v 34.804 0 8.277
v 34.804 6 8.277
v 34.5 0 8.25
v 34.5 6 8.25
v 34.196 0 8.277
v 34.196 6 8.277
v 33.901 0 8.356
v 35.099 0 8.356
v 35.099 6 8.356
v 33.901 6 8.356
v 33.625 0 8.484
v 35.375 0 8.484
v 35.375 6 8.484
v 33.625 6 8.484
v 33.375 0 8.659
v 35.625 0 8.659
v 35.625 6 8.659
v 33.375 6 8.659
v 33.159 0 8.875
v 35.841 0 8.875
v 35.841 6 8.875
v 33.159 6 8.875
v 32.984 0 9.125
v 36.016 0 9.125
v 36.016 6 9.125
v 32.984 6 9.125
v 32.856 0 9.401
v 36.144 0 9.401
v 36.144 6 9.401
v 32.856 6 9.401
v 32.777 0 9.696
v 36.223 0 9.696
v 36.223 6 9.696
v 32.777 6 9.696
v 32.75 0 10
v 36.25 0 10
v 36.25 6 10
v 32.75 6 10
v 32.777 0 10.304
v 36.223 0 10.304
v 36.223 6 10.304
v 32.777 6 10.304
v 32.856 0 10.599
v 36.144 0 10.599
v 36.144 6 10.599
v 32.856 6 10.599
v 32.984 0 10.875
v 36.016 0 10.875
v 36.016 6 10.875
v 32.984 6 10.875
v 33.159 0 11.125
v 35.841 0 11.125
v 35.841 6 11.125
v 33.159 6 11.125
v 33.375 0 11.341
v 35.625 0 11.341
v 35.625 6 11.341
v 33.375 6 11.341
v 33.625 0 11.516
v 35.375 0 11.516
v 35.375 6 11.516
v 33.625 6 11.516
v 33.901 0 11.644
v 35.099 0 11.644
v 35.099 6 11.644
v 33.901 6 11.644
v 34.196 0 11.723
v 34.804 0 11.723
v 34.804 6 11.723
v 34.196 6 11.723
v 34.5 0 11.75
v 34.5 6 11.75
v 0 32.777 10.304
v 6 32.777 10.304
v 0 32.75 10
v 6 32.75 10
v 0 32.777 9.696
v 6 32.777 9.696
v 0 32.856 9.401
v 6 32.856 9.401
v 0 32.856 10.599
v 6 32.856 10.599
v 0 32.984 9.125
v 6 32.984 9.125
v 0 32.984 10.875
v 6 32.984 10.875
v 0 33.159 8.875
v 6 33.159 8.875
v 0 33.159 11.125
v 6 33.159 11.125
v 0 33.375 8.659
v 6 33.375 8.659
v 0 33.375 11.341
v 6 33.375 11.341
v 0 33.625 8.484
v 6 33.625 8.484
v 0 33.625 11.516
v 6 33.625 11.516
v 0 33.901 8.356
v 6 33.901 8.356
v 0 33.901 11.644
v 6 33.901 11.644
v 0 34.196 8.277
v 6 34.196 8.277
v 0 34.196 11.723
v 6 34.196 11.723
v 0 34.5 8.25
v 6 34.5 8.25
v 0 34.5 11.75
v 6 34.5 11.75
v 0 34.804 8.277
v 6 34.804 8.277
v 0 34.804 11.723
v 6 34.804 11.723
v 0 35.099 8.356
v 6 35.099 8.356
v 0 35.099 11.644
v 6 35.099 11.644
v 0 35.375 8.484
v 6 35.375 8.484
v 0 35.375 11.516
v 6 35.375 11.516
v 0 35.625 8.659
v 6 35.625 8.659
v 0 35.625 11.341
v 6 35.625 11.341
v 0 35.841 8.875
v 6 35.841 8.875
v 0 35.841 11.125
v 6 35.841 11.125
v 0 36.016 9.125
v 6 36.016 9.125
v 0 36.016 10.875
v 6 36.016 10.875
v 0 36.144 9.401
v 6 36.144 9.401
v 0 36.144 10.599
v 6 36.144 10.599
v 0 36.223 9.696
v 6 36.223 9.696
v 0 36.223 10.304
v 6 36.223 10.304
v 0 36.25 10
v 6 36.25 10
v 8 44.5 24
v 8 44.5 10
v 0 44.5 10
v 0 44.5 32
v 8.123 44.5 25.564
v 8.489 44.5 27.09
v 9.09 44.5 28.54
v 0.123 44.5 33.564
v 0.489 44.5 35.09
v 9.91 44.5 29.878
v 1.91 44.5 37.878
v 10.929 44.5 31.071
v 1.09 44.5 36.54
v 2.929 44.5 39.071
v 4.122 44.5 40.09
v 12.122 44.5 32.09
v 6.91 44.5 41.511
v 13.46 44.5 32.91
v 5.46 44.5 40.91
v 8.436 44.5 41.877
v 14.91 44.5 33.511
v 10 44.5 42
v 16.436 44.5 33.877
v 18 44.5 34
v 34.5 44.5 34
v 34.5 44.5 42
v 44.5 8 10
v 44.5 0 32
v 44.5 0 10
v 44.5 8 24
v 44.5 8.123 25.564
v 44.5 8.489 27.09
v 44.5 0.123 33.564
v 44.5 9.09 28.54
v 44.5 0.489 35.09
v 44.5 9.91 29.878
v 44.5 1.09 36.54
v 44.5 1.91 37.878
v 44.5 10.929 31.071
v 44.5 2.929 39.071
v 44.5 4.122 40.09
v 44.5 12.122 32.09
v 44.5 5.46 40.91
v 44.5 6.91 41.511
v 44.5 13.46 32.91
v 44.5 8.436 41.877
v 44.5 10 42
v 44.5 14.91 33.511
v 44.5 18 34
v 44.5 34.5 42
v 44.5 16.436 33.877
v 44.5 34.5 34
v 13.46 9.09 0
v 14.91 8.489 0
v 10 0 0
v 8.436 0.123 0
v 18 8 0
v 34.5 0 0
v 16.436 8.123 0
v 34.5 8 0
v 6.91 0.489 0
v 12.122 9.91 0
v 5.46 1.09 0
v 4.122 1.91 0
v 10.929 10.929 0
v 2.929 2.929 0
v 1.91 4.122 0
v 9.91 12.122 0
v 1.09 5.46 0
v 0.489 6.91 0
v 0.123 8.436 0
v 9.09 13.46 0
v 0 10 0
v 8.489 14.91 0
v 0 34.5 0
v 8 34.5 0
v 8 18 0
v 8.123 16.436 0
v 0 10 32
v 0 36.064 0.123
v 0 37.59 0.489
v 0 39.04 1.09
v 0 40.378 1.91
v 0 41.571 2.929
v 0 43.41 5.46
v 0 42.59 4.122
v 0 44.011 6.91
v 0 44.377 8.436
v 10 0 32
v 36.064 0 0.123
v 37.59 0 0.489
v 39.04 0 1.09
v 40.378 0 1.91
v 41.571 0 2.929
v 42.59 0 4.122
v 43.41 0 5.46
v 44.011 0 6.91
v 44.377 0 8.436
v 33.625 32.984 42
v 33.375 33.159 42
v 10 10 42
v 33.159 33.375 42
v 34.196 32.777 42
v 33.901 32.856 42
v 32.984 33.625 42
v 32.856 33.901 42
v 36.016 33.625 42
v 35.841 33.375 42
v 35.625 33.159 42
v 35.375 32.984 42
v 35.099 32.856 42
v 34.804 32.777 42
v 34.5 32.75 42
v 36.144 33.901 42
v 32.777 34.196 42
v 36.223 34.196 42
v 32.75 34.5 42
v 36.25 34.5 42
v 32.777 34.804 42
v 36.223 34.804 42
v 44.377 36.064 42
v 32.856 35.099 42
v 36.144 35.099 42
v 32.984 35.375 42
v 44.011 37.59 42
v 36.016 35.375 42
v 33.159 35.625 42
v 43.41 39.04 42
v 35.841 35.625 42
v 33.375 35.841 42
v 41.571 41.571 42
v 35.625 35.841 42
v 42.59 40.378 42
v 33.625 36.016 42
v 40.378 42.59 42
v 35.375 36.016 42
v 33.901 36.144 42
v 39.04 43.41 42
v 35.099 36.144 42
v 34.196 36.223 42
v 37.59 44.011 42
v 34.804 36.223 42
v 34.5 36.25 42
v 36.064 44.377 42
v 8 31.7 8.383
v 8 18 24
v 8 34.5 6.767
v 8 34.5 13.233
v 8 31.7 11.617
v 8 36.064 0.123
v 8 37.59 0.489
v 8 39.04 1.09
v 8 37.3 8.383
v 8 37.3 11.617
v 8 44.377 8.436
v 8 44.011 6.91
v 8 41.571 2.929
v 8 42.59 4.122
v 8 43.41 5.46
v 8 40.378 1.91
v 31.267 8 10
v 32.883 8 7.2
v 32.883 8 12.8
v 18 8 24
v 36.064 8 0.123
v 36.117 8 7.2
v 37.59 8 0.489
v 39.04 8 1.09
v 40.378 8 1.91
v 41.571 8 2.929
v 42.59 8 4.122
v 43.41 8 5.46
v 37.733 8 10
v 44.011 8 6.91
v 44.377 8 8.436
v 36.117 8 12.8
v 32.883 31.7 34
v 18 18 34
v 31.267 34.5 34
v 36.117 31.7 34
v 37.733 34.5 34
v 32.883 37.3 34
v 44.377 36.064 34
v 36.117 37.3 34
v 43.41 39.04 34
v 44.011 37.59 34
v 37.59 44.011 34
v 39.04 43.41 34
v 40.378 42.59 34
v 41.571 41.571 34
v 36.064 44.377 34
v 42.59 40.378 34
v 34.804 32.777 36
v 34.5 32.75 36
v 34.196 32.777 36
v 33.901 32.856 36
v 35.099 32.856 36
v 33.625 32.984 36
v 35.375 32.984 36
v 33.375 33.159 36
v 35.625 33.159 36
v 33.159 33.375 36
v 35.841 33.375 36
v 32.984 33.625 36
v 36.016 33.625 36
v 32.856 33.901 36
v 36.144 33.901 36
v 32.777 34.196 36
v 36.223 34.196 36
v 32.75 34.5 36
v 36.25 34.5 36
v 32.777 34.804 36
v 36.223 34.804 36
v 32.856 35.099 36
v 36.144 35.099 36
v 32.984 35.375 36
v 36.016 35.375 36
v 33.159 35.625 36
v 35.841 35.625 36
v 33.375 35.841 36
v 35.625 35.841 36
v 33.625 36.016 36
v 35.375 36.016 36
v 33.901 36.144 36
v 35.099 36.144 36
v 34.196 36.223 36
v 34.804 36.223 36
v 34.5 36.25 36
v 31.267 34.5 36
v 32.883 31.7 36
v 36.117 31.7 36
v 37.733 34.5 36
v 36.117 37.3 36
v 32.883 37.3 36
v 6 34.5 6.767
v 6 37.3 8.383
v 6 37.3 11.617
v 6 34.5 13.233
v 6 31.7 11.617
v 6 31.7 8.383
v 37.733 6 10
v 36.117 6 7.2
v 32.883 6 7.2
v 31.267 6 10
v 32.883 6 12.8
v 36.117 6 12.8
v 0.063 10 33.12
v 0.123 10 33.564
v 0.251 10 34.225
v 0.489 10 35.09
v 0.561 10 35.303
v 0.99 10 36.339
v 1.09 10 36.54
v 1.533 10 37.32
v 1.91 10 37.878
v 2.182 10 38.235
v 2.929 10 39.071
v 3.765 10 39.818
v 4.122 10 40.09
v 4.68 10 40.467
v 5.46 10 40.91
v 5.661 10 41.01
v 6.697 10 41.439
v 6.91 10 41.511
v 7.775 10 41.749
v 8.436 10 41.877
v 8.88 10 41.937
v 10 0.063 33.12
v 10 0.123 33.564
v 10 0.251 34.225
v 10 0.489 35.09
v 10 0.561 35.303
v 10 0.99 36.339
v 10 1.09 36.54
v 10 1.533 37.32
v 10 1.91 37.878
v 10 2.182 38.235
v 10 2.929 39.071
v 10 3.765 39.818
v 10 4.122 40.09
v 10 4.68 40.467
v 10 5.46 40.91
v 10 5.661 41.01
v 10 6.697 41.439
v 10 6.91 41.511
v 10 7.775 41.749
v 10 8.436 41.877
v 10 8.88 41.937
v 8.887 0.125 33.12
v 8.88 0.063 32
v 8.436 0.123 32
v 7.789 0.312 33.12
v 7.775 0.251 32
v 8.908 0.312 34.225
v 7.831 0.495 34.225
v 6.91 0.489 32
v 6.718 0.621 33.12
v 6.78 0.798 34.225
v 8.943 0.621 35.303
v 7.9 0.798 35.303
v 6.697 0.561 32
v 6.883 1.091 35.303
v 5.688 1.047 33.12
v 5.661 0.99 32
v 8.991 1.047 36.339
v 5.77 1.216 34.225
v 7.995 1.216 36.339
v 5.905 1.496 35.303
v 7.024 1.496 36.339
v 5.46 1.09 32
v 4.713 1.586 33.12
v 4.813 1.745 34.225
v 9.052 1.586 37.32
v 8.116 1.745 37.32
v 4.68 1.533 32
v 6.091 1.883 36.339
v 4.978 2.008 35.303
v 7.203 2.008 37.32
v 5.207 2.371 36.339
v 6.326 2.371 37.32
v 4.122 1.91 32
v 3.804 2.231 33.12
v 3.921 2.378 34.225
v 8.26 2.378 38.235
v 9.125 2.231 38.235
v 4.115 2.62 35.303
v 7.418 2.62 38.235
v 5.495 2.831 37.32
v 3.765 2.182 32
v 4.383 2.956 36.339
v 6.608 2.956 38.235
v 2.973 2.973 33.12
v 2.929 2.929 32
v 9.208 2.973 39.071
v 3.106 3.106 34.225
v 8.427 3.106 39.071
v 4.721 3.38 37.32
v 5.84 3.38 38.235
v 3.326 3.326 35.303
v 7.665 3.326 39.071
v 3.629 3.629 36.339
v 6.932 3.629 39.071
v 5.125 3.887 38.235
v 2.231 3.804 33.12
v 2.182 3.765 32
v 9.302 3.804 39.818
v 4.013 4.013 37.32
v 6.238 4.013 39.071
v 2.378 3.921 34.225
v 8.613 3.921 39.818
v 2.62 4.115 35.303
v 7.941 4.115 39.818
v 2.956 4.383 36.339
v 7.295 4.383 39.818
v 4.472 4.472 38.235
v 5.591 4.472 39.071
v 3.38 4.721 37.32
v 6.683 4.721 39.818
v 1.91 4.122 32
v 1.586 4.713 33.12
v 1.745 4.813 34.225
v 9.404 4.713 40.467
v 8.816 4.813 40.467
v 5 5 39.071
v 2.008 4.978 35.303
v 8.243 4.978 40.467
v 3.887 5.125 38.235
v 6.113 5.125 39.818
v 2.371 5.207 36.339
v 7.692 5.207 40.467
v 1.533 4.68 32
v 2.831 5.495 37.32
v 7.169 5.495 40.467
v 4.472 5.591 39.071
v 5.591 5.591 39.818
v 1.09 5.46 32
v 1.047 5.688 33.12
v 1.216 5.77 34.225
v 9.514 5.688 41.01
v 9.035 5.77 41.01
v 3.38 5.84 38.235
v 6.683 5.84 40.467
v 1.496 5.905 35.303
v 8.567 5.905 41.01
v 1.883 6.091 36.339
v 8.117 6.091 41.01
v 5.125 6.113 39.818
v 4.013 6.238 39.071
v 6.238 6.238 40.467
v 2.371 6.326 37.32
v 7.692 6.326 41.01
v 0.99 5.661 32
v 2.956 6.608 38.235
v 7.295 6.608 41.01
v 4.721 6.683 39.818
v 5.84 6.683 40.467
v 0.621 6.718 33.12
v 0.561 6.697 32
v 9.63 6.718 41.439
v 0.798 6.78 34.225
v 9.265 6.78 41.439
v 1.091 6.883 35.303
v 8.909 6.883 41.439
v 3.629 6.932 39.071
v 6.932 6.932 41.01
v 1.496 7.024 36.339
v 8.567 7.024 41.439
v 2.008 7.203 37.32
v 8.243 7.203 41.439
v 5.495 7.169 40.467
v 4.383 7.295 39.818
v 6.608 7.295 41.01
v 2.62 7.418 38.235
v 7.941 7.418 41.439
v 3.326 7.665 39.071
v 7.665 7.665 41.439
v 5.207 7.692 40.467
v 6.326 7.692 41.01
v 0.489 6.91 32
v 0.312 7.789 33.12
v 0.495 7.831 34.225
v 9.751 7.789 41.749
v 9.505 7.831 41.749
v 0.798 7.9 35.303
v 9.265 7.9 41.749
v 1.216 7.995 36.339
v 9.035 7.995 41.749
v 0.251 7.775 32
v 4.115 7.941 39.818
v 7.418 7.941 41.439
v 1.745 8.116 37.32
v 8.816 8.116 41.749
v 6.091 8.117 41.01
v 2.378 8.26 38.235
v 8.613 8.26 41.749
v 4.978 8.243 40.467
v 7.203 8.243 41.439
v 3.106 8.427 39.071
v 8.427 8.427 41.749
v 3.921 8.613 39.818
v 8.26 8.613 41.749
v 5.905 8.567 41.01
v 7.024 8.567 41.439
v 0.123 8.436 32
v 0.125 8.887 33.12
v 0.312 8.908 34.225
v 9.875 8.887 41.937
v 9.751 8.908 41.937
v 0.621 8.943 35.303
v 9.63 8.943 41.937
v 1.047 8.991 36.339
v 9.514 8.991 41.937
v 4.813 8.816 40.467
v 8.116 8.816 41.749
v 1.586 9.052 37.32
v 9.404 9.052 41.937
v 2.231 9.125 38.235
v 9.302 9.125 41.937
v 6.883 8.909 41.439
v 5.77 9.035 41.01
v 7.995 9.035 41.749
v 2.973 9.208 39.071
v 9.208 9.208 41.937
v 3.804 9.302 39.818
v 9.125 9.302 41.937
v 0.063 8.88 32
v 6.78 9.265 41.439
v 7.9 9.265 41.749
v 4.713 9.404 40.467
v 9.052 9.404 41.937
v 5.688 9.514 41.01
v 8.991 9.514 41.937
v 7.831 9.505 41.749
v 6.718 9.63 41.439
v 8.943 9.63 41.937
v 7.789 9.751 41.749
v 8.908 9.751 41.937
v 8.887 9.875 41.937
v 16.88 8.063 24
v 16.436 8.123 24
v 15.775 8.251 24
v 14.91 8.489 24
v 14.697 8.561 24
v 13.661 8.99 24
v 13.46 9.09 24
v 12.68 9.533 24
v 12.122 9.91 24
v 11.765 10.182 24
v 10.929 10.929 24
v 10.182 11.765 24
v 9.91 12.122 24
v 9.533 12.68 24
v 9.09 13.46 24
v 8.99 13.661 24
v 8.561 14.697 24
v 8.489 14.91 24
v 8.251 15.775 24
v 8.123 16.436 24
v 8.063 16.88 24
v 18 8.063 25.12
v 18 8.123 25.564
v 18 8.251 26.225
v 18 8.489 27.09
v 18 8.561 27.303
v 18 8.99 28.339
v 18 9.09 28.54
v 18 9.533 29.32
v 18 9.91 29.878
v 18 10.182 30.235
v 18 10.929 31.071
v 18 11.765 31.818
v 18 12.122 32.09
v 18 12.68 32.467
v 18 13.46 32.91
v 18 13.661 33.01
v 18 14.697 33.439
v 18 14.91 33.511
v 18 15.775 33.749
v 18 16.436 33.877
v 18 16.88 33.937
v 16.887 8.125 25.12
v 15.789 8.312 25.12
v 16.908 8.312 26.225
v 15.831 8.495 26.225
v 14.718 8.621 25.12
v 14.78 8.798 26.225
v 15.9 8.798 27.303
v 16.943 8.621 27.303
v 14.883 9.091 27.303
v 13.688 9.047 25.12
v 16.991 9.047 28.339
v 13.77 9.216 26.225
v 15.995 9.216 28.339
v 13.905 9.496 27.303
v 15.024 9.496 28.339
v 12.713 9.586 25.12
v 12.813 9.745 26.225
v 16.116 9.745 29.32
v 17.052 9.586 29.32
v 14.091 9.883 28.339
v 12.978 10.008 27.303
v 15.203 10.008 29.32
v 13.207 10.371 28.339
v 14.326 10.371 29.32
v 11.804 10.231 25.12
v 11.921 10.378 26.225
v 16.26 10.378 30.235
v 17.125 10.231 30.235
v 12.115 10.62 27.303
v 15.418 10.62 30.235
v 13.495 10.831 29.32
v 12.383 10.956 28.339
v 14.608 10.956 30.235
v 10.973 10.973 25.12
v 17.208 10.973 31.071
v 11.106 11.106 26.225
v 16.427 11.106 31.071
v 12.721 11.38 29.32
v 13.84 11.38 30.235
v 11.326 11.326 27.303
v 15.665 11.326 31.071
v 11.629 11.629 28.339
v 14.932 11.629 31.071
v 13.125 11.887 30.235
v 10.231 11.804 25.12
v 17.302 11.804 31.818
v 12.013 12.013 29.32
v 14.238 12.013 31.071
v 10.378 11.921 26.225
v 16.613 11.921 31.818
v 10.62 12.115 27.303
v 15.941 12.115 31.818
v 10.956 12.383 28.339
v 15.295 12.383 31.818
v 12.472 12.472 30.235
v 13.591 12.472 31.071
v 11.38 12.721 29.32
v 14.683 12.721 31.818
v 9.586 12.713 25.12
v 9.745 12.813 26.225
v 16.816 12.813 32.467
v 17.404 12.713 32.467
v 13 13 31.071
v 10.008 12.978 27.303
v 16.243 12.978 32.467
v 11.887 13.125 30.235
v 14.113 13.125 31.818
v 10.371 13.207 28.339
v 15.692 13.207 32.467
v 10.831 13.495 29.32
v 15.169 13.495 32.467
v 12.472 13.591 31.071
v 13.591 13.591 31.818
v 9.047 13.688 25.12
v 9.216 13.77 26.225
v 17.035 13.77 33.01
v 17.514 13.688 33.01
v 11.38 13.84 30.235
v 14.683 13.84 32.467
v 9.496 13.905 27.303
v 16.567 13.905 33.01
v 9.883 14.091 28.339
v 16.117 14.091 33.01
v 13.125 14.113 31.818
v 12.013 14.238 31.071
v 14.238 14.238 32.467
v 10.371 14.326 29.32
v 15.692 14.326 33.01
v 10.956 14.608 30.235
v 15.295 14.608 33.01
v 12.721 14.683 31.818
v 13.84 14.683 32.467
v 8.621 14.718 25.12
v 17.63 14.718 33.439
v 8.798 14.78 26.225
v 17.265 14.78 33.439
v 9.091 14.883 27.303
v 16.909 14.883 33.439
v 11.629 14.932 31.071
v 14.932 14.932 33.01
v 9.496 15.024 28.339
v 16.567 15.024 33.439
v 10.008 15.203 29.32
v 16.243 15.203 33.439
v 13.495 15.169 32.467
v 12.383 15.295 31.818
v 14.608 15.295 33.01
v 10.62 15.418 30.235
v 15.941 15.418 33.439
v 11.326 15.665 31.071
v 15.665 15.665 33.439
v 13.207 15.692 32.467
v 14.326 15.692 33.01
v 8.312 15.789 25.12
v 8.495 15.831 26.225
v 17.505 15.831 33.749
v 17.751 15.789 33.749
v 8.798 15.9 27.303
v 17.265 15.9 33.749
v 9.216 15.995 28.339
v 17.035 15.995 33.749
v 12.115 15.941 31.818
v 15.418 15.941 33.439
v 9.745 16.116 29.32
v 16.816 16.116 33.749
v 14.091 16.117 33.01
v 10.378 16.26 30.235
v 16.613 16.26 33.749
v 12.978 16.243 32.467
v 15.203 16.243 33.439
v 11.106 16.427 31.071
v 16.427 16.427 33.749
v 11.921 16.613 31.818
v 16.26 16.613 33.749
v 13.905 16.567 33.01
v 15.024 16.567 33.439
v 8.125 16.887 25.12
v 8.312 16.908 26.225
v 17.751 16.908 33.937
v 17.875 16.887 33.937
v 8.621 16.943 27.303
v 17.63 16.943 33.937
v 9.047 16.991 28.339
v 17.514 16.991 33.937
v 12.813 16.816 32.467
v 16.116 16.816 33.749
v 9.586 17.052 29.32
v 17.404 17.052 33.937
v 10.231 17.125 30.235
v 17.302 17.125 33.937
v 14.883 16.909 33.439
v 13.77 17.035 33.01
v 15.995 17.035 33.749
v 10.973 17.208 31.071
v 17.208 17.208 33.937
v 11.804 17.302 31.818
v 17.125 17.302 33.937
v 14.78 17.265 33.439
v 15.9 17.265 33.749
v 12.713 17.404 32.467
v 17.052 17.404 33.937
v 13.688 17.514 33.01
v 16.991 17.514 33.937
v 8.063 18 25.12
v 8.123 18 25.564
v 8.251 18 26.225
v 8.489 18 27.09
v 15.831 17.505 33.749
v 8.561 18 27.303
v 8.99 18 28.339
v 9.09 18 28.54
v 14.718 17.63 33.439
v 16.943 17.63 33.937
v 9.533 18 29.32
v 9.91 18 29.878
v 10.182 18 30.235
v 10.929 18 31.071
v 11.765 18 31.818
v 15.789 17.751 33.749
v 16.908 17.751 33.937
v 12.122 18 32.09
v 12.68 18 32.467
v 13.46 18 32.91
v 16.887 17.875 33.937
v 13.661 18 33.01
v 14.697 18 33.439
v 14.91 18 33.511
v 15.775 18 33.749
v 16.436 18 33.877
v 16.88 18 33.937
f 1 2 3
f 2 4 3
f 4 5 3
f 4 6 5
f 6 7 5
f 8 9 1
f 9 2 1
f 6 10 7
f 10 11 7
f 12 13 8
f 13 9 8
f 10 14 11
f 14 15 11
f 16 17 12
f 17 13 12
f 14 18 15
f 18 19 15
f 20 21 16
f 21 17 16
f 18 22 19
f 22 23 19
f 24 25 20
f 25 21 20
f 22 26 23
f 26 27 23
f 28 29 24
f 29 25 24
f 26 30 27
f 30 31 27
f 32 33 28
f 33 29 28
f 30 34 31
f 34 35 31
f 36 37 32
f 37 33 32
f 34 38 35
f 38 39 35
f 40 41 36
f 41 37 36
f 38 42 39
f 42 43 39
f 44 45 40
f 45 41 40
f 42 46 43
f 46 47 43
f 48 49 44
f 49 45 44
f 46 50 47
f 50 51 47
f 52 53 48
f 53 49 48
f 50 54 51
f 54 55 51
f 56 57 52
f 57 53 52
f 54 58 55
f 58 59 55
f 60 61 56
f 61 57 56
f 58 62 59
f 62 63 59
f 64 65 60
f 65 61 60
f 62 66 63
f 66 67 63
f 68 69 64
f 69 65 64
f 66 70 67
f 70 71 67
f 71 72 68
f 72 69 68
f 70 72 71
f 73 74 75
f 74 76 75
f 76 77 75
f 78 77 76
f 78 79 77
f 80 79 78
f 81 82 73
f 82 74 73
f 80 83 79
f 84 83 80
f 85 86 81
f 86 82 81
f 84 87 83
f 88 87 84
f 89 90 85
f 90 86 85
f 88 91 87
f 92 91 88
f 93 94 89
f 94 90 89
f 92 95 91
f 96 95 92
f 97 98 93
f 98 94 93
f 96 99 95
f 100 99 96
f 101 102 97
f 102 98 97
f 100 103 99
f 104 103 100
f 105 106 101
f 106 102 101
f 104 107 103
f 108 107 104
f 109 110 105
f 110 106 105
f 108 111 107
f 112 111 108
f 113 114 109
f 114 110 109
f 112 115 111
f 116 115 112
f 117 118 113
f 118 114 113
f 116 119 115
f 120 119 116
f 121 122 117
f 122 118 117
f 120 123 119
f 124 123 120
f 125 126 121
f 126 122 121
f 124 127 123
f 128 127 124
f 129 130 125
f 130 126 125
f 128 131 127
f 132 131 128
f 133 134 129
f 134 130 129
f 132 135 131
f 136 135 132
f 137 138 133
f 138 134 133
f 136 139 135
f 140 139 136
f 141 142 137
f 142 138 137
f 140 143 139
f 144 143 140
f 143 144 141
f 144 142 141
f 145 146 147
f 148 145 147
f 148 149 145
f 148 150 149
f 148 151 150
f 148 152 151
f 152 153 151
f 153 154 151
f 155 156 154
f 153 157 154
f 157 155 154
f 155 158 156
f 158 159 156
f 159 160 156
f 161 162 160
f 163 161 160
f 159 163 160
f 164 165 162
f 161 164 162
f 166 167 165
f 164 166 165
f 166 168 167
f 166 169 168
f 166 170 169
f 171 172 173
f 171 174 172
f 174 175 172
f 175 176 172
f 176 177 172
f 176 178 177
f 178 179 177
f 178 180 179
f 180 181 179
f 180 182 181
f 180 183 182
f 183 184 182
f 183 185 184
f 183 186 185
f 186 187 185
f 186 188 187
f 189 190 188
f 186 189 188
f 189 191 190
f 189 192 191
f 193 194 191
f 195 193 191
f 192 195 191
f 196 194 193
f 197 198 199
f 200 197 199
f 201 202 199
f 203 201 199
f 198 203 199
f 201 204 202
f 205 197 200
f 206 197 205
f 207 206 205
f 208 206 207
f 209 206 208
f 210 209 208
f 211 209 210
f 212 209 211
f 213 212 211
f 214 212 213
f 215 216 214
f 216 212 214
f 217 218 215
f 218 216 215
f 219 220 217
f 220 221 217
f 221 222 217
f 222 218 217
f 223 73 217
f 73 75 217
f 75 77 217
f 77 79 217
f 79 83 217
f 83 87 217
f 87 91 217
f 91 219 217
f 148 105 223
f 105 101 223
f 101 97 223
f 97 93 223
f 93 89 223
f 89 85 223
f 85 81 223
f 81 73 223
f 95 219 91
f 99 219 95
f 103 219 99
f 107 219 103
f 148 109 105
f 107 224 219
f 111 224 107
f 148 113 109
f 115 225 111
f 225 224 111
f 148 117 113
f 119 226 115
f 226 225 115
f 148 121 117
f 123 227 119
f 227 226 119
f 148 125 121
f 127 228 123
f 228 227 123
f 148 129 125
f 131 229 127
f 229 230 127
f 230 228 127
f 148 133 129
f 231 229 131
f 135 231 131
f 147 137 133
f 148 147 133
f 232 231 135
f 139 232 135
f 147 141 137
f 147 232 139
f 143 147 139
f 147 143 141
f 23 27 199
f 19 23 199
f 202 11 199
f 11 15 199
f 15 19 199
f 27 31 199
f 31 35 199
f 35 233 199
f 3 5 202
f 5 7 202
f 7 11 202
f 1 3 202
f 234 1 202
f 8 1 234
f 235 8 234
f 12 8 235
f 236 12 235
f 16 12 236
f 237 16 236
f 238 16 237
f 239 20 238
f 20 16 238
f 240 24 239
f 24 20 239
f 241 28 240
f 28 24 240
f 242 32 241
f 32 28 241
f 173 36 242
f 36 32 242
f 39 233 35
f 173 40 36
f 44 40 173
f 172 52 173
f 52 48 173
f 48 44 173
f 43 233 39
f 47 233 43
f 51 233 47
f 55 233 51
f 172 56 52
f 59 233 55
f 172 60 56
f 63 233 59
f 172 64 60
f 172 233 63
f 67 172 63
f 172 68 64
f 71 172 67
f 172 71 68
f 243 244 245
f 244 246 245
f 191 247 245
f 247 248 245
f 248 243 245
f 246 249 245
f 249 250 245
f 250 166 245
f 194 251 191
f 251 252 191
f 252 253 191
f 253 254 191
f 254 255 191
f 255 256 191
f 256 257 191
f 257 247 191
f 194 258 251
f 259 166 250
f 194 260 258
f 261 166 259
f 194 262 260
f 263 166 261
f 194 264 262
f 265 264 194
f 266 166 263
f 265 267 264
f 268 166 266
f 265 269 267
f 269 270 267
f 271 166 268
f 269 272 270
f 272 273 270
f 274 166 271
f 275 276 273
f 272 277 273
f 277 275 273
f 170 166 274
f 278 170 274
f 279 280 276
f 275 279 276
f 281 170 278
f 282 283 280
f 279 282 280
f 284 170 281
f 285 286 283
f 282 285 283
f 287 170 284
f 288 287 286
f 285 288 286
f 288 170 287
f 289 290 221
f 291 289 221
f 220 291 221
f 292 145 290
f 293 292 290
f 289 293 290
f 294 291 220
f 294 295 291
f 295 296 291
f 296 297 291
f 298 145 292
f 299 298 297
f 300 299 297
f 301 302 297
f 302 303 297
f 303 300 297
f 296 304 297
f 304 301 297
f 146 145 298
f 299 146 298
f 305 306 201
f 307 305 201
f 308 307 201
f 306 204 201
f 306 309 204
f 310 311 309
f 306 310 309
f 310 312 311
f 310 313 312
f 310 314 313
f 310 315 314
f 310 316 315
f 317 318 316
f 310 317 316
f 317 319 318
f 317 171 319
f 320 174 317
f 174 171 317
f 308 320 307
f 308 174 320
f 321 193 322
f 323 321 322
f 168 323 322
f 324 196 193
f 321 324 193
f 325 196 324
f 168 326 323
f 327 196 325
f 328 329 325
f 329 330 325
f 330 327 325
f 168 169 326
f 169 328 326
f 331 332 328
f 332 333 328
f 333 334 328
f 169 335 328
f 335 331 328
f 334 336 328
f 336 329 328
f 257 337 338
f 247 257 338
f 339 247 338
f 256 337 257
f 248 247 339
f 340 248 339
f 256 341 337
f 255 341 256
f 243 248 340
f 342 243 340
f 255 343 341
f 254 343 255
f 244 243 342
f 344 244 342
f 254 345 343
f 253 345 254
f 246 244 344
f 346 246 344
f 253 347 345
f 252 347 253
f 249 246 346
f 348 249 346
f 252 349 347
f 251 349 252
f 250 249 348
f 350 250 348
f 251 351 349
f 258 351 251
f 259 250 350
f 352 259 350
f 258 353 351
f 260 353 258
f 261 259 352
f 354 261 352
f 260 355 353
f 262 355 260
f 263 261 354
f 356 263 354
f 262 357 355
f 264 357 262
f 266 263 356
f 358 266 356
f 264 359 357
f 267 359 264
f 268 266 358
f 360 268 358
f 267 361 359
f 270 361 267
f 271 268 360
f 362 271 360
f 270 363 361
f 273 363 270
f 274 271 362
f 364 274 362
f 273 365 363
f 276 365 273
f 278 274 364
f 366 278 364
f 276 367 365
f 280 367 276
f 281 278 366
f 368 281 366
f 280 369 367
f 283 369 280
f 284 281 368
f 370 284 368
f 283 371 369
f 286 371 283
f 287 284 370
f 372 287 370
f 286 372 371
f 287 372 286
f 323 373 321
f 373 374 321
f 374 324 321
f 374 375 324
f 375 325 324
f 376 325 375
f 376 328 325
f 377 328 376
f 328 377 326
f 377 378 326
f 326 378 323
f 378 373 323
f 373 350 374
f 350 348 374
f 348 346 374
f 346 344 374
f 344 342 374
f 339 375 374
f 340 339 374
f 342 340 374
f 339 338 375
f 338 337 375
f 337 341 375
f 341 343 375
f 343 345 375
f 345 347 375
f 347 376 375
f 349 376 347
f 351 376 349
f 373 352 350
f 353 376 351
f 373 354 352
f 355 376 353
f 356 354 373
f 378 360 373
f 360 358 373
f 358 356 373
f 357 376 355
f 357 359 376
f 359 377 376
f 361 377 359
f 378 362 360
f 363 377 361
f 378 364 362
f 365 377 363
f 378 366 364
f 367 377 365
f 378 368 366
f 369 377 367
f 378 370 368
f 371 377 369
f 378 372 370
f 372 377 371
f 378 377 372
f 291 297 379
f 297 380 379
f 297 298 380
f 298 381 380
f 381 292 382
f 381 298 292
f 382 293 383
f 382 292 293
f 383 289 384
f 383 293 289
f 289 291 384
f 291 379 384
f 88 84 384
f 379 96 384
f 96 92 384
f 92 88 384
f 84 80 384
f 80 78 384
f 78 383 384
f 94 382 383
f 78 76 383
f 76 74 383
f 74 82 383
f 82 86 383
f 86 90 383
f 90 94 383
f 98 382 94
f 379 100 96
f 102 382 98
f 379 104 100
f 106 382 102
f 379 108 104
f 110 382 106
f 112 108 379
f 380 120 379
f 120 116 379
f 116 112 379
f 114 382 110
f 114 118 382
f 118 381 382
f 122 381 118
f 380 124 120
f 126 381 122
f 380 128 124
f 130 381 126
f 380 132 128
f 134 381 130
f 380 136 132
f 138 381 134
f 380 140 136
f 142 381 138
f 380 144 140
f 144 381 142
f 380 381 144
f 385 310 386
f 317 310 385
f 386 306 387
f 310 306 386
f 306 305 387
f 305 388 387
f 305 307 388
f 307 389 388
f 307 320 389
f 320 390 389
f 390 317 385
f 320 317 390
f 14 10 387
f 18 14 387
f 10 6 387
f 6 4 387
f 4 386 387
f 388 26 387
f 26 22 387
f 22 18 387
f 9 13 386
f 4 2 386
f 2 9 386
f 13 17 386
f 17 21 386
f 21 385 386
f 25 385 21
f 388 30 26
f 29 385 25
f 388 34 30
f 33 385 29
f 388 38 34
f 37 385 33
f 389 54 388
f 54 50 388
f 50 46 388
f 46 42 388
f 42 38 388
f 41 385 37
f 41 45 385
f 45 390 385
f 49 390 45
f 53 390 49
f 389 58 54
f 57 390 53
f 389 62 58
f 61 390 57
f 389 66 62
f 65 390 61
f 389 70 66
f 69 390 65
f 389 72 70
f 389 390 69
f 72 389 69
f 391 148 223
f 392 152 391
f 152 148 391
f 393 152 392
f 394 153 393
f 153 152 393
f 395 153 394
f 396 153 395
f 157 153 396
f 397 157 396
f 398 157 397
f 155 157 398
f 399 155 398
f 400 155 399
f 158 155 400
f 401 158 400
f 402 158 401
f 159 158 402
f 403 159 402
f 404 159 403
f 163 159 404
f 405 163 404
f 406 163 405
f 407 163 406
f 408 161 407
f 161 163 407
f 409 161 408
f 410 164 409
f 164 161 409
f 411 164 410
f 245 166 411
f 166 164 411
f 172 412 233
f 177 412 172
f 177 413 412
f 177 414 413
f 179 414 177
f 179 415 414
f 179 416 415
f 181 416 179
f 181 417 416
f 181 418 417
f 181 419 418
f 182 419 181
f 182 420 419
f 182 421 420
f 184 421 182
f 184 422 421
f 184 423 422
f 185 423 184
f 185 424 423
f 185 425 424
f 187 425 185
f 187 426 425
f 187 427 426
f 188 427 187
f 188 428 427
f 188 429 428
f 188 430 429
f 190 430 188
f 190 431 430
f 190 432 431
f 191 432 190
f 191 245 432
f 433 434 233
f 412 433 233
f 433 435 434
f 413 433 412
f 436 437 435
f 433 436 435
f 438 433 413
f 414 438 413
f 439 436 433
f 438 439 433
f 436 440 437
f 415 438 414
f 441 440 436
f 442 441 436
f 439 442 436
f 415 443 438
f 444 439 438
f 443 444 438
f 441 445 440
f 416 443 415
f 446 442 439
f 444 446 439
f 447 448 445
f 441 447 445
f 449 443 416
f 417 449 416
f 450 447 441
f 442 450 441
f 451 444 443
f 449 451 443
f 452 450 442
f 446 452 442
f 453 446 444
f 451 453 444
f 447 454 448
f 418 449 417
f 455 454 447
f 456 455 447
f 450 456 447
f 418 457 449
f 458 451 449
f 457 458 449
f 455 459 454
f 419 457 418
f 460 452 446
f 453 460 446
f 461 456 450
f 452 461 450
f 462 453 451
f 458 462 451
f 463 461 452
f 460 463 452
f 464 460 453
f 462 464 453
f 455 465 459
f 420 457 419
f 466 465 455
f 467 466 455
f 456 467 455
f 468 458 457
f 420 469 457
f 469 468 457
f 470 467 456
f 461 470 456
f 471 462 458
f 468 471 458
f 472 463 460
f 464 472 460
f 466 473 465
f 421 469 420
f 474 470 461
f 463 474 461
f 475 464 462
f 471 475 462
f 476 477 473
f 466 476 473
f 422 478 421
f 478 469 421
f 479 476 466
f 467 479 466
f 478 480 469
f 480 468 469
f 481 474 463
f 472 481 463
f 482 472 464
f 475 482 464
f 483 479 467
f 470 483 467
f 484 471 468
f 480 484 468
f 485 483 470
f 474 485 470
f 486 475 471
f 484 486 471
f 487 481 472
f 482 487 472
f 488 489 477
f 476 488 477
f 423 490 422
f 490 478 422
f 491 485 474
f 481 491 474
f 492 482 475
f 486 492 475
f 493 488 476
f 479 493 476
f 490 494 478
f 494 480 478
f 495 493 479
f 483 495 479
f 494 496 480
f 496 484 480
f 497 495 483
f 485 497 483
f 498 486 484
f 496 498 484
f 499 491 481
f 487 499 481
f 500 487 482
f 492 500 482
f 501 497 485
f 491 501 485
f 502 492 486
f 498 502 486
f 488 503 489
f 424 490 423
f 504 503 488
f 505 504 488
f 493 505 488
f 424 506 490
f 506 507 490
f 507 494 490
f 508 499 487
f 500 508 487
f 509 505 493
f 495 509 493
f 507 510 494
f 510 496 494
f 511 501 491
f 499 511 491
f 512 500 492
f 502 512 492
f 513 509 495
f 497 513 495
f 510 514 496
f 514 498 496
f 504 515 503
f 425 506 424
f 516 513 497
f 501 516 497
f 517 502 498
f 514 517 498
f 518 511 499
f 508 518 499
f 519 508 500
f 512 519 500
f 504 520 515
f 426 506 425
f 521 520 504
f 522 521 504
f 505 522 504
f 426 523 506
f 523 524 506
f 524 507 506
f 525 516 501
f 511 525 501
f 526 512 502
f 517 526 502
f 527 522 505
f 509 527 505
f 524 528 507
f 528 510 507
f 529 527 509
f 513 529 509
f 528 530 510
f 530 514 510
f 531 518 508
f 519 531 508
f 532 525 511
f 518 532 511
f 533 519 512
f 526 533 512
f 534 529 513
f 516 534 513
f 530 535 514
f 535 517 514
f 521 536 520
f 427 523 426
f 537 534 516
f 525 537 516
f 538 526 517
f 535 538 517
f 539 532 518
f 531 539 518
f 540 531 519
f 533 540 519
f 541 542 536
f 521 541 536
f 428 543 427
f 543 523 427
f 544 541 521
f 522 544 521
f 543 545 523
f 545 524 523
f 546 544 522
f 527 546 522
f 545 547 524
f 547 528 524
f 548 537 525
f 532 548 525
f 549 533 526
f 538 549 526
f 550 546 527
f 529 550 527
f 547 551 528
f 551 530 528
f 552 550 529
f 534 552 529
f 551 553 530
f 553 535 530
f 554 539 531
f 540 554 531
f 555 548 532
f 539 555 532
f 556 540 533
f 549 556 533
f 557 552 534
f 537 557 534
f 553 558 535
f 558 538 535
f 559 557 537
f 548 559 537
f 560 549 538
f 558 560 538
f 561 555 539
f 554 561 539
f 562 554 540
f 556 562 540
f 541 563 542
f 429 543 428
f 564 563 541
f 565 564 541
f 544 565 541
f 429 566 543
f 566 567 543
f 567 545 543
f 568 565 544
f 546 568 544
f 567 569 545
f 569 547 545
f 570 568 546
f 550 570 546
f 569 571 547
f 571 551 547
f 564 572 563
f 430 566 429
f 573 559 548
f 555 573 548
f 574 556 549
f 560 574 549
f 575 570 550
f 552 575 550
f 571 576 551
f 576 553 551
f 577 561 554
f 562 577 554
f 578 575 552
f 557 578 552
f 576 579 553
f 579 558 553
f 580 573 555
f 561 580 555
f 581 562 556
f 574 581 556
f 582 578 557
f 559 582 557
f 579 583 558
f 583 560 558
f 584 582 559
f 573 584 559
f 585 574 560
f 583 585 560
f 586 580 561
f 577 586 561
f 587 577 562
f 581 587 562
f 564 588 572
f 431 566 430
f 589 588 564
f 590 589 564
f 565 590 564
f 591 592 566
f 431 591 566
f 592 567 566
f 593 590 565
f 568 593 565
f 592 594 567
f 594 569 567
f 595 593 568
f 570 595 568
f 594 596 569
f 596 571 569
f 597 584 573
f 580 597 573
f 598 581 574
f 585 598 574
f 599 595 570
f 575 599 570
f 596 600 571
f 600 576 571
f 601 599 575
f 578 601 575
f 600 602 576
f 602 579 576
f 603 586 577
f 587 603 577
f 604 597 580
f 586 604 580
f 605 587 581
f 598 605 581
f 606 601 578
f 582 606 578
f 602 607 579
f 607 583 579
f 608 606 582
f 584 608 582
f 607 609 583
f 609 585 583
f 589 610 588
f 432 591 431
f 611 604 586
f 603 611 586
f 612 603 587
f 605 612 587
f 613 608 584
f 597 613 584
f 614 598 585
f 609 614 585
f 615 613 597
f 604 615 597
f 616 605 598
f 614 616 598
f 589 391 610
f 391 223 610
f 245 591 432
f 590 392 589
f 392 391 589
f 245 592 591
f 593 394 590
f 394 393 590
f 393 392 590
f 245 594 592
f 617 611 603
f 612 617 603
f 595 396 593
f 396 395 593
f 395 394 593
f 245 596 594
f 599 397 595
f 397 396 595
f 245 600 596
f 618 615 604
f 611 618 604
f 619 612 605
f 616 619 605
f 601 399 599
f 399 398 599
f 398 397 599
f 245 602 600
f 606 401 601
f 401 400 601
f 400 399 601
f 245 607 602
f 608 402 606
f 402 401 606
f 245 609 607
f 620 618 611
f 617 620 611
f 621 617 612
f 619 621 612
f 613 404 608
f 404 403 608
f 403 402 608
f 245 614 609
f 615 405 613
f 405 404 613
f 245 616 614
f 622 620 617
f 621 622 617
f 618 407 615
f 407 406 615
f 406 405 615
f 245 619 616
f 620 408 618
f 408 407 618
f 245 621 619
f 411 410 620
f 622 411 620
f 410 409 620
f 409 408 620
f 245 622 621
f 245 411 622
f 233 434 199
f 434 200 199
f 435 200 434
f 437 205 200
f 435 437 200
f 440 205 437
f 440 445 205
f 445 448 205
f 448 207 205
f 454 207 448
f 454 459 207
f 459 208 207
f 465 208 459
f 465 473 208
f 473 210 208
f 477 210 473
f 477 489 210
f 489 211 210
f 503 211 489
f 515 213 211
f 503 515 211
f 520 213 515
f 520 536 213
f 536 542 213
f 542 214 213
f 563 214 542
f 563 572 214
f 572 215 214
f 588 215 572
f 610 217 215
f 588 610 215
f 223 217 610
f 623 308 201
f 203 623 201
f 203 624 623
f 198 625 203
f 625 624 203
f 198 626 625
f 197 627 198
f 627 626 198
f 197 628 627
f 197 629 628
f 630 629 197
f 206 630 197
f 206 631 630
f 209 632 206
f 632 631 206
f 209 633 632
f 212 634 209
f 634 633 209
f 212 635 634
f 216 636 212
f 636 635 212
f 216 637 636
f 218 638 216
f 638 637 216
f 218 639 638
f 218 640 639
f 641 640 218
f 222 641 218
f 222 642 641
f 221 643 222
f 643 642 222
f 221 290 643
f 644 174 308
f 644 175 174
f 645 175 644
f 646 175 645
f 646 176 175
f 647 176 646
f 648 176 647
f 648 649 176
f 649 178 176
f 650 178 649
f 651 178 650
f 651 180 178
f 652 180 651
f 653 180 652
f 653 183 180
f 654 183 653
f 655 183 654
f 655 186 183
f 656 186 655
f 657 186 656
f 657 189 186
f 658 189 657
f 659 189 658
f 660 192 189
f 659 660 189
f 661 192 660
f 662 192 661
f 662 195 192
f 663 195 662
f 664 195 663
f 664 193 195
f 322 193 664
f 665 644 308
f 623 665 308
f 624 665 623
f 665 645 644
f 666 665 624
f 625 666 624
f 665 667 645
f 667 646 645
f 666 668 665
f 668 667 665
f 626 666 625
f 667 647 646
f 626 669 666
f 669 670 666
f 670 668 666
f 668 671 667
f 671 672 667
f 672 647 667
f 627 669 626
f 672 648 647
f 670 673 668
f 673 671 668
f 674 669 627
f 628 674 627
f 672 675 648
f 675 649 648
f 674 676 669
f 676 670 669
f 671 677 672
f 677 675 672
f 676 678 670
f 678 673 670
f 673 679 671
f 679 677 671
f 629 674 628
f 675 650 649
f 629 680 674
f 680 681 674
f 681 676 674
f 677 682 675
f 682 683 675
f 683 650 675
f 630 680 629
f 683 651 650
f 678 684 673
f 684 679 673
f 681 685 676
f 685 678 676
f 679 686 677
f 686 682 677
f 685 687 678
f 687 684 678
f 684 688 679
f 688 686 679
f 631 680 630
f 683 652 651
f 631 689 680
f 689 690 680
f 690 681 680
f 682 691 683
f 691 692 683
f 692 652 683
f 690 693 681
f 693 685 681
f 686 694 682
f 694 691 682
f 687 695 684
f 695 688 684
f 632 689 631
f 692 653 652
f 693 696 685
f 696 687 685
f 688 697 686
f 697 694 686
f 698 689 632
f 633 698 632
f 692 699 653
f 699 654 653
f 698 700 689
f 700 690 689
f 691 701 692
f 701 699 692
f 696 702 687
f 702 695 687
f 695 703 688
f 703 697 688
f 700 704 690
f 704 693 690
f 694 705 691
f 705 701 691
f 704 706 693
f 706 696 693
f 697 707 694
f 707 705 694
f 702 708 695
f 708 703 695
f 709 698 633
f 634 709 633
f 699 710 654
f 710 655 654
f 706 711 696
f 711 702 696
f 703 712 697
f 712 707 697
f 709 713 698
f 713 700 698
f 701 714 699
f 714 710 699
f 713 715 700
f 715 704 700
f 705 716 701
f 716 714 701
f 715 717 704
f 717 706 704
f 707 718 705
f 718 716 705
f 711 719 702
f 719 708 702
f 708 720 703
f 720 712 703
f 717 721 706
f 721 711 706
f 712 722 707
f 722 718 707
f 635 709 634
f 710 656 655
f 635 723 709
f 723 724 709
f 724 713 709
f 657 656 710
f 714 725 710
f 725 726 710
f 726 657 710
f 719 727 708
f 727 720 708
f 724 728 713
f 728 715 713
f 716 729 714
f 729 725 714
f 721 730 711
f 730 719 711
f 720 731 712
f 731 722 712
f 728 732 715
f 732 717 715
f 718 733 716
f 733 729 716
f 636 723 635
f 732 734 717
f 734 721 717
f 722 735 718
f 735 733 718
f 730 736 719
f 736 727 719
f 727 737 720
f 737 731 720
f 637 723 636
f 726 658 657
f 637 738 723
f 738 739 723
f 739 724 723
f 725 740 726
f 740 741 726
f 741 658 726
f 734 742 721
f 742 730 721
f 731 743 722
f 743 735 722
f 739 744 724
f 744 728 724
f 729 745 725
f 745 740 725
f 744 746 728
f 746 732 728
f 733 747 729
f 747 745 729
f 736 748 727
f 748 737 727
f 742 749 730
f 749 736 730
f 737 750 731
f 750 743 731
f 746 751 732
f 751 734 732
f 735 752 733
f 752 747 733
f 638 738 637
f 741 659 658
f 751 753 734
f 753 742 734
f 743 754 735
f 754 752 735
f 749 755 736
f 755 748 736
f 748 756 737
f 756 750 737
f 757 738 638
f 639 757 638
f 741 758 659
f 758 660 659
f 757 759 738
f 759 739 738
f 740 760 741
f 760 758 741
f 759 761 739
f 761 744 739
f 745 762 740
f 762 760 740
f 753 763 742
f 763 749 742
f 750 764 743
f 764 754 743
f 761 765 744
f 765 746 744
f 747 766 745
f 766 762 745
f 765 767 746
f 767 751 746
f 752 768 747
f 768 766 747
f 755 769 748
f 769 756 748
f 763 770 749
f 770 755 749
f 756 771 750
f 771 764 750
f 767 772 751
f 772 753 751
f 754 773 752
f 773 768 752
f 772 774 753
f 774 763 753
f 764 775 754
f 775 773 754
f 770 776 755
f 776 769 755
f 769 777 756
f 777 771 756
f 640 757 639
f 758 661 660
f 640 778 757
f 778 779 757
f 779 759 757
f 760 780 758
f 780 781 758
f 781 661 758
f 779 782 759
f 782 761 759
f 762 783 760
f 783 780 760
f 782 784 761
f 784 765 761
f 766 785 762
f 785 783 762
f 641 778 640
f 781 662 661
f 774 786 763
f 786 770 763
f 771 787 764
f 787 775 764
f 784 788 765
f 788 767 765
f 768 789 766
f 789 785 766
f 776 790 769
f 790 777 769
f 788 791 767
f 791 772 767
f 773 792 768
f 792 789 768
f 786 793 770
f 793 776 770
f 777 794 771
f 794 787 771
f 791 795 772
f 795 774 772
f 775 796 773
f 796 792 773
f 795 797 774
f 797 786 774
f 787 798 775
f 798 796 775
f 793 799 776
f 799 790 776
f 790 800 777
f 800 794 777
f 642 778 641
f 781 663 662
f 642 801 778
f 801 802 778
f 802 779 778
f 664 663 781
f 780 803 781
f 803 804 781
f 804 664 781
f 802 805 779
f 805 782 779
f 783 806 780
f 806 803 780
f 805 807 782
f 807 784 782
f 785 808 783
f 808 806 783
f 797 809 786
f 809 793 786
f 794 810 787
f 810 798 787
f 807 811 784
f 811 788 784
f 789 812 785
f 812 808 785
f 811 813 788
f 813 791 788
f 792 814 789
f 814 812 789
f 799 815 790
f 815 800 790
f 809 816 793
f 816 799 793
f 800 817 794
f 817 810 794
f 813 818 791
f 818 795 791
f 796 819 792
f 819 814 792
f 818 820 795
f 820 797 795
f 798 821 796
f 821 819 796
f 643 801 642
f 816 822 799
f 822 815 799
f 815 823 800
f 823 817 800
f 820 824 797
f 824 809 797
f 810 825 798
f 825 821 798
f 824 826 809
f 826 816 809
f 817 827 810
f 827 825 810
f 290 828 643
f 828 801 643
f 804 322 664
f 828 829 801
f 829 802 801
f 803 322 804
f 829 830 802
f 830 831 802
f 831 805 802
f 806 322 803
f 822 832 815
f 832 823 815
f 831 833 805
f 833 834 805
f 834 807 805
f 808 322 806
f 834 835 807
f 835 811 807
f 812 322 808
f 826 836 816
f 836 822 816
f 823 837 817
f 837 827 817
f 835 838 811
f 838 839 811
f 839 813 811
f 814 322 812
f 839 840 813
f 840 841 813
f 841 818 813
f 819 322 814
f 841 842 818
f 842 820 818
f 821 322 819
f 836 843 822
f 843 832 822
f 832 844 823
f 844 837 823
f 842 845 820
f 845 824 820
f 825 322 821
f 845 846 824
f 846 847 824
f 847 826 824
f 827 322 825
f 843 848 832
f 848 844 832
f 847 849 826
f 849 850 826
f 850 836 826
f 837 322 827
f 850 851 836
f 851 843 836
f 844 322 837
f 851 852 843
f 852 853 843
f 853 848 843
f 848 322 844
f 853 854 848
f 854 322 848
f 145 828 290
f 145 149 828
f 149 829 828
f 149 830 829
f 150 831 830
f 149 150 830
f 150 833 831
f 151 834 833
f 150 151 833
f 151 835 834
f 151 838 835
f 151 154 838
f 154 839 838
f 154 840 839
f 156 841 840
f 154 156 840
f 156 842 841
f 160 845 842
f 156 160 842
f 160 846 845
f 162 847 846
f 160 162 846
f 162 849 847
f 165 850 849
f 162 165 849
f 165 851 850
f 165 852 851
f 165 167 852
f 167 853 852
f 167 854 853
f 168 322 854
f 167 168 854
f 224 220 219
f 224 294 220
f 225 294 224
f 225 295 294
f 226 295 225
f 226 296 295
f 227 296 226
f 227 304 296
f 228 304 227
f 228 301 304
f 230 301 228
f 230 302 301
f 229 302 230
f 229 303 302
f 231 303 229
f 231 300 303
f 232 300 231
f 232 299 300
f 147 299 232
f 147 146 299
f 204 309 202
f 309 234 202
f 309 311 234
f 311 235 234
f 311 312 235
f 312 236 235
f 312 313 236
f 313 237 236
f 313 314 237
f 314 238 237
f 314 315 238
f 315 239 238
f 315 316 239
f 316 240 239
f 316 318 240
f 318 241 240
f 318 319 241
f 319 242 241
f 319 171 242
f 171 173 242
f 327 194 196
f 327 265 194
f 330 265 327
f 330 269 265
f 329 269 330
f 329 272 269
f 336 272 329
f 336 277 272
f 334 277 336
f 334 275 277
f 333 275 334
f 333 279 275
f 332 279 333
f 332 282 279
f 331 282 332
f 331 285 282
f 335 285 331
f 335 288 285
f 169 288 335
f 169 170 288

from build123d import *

# Parameters (mm, degrees)
SKETCH1_W           = 4
SKETCH1_H           = 10
SKETCH1_H_2         = 30.5
SKETCH1_W_2         = 34.5
SKETCH1_H_3         = 4
SKETCH1_W_3         = 26.5
SKETCH1_W_4         = 10
BOSS_EXTRUDE1_DEPTH = 42
CUT_EXTRUDE1_DEPTH  = 34
SKETCH3_R           = 1.75
CUT_EXTRUDE2_DEPTH  = 72.529714105
SKETCH3_3_R         = 1.75
CUT_EXTRUDE3_DEPTH  = 2
SKETCH4_R           = 1.75
CUT_EXTRUDE4_DEPTH  = 72.249561402
SKETCH4_3_R         = 1.75
CUT_EXTRUDE5_DEPTH  = 2
SKETCH5_R           = 1.75
CUT_EXTRUDE6_DEPTH  = 72.249561402
SKETCH5_3_R         = 1.75
CUT_EXTRUDE7_DEPTH  = 2
FILLET1_R           = 10


with BuildPart() as part:
    # Sketch1 → Boss-Extrude1 (new body)
    with BuildSketch(Plane.XY):
        Polygon((8, 8), (34.5, 8), (44.5, 8), (44.5, 44.5), (8, 44.5), (8, 34.5), align=None)
        with Locations((6, 39.5)):
            Rectangle(SKETCH1_W, SKETCH1_H)
        with Locations((2, 39.5)):
            Rectangle(SKETCH1_W, SKETCH1_H)
        with Locations((2, 19.25)):
            Rectangle(SKETCH1_W, SKETCH1_H_2)
        Polygon((4, 34.5), (4, 4), (8, 4), (8, 8), (8, 34.5), align=None)
        with Locations((17.25, 2)):
            Rectangle(SKETCH1_W_2, SKETCH1_H_3)
        with Locations((21.25, 6)):
            Rectangle(SKETCH1_W_3, SKETCH1_H_3)
        with Locations((39.5, 6)):
            Rectangle(SKETCH1_W_4, SKETCH1_H_3)
        with Locations((39.5, 2)):
            Rectangle(SKETCH1_W_4, SKETCH1_H_3)
    extrude(amount=BOSS_EXTRUDE1_DEPTH)

    # Sketch1<3> → Cut-Extrude1 (cut)
    with BuildSketch(Plane.XY):
        Polygon((8, 8), (34.5, 8), (44.5, 8), (44.5, 44.5), (8, 44.5), (8, 34.5), align=None)
    extrude(amount=CUT_EXTRUDE1_DEPTH, mode=Mode.SUBTRACT)

    # Sketch3 → Cut-Extrude2 (cut, through all)
    with BuildSketch(Plane(origin=(0, 0, 34), x_dir=(-1, 0, 0), z_dir=(0, 0, -1))):
        with Locations((-34.5, 34.5)):
            Circle(SKETCH3_R)
    extrude(amount=-CUT_EXTRUDE2_DEPTH, mode=Mode.SUBTRACT)

    # Sketch3<3> → Cut-Extrude3 (cut)
    with BuildSketch(Plane(origin=(0, 0, 34), x_dir=(-1, 0, 0), z_dir=(0, 0, -1))):
        Polygon((-31.266838493, 34.5), (-32.883419246, 37.3), (-36.116580754, 37.3), (-37.733161507, 34.5), (-36.116580754, 31.7), (-32.883419246, 31.7), align=None)
        with Locations((-34.5, 34.5)):
            Circle(SKETCH3_3_R, mode=Mode.SUBTRACT)
    extrude(amount=-CUT_EXTRUDE3_DEPTH, mode=Mode.SUBTRACT)

    # Sketch4 → Cut-Extrude4 (cut, through all)
    with BuildSketch(Plane(origin=(8, 0, 0), x_dir=(0, 0, -1), z_dir=(1, 0, 0))):
        with Locations(Location((-10, 34.5, 0), (0, 0, 90))):
            Circle(SKETCH4_R)
    extrude(amount=-CUT_EXTRUDE4_DEPTH, mode=Mode.SUBTRACT)

    # Sketch4<3> → Cut-Extrude5 (cut)
    with BuildSketch(Plane(origin=(8, 0, 0), x_dir=(0, 0, -1), z_dir=(1, 0, 0))):
        Polygon((-6.766838493, 34.5), (-8.383419246, 37.3), (-11.616580754, 37.3), (-13.233161507, 34.5), (-11.616580754, 31.7), (-8.383419246, 31.7), align=None)
        with Locations(Location((-10, 34.5, 0), (0, 0, 90))):
            Circle(SKETCH4_3_R, mode=Mode.SUBTRACT)
    extrude(amount=-CUT_EXTRUDE5_DEPTH, mode=Mode.SUBTRACT)

    # Sketch5 → Cut-Extrude6 (cut, through all)
    with BuildSketch(Plane(origin=(0, 8, 0), x_dir=(1, 0, 0), z_dir=(0, 1, 0))):
        with Locations(Location((34.5, -10, 0), (0, 0, 270))):
            Circle(SKETCH5_R)
    extrude(amount=-CUT_EXTRUDE6_DEPTH, mode=Mode.SUBTRACT)

    # Sketch5<3> → Cut-Extrude7 (cut)
    with BuildSketch(Plane(origin=(0, 8, 0), x_dir=(1, 0, 0), z_dir=(0, 1, 0))):
        Polygon((37.733161507, -10), (36.116580754, -7.2), (32.883419246, -7.2), (31.266838493, -10), (32.883419246, -12.8), (36.116580754, -12.8), align=None)
        with Locations(Location((34.5, -10, 0), (0, 0, 270))):
            Circle(SKETCH5_3_R, mode=Mode.SUBTRACT)
    extrude(amount=-CUT_EXTRUDE7_DEPTH, mode=Mode.SUBTRACT)

    # Fillet1
    fillet1_edges = [part.edges().sort_by_distance(p)[0] for p in [
        (44.5, 44.5, 38),
        (0, 0, 21),
        (0, 22.25, 42),
        (44.5, 4, 0),
        (22.25, 0, 42),
        (8, 8, 17),
        (8, 26.25, 34),
        (26.25, 8, 34),
        (4, 44.5, 0),
    ]]
    fillet(fillet1_edges, radius=FILLET1_R)


solid = part.part
